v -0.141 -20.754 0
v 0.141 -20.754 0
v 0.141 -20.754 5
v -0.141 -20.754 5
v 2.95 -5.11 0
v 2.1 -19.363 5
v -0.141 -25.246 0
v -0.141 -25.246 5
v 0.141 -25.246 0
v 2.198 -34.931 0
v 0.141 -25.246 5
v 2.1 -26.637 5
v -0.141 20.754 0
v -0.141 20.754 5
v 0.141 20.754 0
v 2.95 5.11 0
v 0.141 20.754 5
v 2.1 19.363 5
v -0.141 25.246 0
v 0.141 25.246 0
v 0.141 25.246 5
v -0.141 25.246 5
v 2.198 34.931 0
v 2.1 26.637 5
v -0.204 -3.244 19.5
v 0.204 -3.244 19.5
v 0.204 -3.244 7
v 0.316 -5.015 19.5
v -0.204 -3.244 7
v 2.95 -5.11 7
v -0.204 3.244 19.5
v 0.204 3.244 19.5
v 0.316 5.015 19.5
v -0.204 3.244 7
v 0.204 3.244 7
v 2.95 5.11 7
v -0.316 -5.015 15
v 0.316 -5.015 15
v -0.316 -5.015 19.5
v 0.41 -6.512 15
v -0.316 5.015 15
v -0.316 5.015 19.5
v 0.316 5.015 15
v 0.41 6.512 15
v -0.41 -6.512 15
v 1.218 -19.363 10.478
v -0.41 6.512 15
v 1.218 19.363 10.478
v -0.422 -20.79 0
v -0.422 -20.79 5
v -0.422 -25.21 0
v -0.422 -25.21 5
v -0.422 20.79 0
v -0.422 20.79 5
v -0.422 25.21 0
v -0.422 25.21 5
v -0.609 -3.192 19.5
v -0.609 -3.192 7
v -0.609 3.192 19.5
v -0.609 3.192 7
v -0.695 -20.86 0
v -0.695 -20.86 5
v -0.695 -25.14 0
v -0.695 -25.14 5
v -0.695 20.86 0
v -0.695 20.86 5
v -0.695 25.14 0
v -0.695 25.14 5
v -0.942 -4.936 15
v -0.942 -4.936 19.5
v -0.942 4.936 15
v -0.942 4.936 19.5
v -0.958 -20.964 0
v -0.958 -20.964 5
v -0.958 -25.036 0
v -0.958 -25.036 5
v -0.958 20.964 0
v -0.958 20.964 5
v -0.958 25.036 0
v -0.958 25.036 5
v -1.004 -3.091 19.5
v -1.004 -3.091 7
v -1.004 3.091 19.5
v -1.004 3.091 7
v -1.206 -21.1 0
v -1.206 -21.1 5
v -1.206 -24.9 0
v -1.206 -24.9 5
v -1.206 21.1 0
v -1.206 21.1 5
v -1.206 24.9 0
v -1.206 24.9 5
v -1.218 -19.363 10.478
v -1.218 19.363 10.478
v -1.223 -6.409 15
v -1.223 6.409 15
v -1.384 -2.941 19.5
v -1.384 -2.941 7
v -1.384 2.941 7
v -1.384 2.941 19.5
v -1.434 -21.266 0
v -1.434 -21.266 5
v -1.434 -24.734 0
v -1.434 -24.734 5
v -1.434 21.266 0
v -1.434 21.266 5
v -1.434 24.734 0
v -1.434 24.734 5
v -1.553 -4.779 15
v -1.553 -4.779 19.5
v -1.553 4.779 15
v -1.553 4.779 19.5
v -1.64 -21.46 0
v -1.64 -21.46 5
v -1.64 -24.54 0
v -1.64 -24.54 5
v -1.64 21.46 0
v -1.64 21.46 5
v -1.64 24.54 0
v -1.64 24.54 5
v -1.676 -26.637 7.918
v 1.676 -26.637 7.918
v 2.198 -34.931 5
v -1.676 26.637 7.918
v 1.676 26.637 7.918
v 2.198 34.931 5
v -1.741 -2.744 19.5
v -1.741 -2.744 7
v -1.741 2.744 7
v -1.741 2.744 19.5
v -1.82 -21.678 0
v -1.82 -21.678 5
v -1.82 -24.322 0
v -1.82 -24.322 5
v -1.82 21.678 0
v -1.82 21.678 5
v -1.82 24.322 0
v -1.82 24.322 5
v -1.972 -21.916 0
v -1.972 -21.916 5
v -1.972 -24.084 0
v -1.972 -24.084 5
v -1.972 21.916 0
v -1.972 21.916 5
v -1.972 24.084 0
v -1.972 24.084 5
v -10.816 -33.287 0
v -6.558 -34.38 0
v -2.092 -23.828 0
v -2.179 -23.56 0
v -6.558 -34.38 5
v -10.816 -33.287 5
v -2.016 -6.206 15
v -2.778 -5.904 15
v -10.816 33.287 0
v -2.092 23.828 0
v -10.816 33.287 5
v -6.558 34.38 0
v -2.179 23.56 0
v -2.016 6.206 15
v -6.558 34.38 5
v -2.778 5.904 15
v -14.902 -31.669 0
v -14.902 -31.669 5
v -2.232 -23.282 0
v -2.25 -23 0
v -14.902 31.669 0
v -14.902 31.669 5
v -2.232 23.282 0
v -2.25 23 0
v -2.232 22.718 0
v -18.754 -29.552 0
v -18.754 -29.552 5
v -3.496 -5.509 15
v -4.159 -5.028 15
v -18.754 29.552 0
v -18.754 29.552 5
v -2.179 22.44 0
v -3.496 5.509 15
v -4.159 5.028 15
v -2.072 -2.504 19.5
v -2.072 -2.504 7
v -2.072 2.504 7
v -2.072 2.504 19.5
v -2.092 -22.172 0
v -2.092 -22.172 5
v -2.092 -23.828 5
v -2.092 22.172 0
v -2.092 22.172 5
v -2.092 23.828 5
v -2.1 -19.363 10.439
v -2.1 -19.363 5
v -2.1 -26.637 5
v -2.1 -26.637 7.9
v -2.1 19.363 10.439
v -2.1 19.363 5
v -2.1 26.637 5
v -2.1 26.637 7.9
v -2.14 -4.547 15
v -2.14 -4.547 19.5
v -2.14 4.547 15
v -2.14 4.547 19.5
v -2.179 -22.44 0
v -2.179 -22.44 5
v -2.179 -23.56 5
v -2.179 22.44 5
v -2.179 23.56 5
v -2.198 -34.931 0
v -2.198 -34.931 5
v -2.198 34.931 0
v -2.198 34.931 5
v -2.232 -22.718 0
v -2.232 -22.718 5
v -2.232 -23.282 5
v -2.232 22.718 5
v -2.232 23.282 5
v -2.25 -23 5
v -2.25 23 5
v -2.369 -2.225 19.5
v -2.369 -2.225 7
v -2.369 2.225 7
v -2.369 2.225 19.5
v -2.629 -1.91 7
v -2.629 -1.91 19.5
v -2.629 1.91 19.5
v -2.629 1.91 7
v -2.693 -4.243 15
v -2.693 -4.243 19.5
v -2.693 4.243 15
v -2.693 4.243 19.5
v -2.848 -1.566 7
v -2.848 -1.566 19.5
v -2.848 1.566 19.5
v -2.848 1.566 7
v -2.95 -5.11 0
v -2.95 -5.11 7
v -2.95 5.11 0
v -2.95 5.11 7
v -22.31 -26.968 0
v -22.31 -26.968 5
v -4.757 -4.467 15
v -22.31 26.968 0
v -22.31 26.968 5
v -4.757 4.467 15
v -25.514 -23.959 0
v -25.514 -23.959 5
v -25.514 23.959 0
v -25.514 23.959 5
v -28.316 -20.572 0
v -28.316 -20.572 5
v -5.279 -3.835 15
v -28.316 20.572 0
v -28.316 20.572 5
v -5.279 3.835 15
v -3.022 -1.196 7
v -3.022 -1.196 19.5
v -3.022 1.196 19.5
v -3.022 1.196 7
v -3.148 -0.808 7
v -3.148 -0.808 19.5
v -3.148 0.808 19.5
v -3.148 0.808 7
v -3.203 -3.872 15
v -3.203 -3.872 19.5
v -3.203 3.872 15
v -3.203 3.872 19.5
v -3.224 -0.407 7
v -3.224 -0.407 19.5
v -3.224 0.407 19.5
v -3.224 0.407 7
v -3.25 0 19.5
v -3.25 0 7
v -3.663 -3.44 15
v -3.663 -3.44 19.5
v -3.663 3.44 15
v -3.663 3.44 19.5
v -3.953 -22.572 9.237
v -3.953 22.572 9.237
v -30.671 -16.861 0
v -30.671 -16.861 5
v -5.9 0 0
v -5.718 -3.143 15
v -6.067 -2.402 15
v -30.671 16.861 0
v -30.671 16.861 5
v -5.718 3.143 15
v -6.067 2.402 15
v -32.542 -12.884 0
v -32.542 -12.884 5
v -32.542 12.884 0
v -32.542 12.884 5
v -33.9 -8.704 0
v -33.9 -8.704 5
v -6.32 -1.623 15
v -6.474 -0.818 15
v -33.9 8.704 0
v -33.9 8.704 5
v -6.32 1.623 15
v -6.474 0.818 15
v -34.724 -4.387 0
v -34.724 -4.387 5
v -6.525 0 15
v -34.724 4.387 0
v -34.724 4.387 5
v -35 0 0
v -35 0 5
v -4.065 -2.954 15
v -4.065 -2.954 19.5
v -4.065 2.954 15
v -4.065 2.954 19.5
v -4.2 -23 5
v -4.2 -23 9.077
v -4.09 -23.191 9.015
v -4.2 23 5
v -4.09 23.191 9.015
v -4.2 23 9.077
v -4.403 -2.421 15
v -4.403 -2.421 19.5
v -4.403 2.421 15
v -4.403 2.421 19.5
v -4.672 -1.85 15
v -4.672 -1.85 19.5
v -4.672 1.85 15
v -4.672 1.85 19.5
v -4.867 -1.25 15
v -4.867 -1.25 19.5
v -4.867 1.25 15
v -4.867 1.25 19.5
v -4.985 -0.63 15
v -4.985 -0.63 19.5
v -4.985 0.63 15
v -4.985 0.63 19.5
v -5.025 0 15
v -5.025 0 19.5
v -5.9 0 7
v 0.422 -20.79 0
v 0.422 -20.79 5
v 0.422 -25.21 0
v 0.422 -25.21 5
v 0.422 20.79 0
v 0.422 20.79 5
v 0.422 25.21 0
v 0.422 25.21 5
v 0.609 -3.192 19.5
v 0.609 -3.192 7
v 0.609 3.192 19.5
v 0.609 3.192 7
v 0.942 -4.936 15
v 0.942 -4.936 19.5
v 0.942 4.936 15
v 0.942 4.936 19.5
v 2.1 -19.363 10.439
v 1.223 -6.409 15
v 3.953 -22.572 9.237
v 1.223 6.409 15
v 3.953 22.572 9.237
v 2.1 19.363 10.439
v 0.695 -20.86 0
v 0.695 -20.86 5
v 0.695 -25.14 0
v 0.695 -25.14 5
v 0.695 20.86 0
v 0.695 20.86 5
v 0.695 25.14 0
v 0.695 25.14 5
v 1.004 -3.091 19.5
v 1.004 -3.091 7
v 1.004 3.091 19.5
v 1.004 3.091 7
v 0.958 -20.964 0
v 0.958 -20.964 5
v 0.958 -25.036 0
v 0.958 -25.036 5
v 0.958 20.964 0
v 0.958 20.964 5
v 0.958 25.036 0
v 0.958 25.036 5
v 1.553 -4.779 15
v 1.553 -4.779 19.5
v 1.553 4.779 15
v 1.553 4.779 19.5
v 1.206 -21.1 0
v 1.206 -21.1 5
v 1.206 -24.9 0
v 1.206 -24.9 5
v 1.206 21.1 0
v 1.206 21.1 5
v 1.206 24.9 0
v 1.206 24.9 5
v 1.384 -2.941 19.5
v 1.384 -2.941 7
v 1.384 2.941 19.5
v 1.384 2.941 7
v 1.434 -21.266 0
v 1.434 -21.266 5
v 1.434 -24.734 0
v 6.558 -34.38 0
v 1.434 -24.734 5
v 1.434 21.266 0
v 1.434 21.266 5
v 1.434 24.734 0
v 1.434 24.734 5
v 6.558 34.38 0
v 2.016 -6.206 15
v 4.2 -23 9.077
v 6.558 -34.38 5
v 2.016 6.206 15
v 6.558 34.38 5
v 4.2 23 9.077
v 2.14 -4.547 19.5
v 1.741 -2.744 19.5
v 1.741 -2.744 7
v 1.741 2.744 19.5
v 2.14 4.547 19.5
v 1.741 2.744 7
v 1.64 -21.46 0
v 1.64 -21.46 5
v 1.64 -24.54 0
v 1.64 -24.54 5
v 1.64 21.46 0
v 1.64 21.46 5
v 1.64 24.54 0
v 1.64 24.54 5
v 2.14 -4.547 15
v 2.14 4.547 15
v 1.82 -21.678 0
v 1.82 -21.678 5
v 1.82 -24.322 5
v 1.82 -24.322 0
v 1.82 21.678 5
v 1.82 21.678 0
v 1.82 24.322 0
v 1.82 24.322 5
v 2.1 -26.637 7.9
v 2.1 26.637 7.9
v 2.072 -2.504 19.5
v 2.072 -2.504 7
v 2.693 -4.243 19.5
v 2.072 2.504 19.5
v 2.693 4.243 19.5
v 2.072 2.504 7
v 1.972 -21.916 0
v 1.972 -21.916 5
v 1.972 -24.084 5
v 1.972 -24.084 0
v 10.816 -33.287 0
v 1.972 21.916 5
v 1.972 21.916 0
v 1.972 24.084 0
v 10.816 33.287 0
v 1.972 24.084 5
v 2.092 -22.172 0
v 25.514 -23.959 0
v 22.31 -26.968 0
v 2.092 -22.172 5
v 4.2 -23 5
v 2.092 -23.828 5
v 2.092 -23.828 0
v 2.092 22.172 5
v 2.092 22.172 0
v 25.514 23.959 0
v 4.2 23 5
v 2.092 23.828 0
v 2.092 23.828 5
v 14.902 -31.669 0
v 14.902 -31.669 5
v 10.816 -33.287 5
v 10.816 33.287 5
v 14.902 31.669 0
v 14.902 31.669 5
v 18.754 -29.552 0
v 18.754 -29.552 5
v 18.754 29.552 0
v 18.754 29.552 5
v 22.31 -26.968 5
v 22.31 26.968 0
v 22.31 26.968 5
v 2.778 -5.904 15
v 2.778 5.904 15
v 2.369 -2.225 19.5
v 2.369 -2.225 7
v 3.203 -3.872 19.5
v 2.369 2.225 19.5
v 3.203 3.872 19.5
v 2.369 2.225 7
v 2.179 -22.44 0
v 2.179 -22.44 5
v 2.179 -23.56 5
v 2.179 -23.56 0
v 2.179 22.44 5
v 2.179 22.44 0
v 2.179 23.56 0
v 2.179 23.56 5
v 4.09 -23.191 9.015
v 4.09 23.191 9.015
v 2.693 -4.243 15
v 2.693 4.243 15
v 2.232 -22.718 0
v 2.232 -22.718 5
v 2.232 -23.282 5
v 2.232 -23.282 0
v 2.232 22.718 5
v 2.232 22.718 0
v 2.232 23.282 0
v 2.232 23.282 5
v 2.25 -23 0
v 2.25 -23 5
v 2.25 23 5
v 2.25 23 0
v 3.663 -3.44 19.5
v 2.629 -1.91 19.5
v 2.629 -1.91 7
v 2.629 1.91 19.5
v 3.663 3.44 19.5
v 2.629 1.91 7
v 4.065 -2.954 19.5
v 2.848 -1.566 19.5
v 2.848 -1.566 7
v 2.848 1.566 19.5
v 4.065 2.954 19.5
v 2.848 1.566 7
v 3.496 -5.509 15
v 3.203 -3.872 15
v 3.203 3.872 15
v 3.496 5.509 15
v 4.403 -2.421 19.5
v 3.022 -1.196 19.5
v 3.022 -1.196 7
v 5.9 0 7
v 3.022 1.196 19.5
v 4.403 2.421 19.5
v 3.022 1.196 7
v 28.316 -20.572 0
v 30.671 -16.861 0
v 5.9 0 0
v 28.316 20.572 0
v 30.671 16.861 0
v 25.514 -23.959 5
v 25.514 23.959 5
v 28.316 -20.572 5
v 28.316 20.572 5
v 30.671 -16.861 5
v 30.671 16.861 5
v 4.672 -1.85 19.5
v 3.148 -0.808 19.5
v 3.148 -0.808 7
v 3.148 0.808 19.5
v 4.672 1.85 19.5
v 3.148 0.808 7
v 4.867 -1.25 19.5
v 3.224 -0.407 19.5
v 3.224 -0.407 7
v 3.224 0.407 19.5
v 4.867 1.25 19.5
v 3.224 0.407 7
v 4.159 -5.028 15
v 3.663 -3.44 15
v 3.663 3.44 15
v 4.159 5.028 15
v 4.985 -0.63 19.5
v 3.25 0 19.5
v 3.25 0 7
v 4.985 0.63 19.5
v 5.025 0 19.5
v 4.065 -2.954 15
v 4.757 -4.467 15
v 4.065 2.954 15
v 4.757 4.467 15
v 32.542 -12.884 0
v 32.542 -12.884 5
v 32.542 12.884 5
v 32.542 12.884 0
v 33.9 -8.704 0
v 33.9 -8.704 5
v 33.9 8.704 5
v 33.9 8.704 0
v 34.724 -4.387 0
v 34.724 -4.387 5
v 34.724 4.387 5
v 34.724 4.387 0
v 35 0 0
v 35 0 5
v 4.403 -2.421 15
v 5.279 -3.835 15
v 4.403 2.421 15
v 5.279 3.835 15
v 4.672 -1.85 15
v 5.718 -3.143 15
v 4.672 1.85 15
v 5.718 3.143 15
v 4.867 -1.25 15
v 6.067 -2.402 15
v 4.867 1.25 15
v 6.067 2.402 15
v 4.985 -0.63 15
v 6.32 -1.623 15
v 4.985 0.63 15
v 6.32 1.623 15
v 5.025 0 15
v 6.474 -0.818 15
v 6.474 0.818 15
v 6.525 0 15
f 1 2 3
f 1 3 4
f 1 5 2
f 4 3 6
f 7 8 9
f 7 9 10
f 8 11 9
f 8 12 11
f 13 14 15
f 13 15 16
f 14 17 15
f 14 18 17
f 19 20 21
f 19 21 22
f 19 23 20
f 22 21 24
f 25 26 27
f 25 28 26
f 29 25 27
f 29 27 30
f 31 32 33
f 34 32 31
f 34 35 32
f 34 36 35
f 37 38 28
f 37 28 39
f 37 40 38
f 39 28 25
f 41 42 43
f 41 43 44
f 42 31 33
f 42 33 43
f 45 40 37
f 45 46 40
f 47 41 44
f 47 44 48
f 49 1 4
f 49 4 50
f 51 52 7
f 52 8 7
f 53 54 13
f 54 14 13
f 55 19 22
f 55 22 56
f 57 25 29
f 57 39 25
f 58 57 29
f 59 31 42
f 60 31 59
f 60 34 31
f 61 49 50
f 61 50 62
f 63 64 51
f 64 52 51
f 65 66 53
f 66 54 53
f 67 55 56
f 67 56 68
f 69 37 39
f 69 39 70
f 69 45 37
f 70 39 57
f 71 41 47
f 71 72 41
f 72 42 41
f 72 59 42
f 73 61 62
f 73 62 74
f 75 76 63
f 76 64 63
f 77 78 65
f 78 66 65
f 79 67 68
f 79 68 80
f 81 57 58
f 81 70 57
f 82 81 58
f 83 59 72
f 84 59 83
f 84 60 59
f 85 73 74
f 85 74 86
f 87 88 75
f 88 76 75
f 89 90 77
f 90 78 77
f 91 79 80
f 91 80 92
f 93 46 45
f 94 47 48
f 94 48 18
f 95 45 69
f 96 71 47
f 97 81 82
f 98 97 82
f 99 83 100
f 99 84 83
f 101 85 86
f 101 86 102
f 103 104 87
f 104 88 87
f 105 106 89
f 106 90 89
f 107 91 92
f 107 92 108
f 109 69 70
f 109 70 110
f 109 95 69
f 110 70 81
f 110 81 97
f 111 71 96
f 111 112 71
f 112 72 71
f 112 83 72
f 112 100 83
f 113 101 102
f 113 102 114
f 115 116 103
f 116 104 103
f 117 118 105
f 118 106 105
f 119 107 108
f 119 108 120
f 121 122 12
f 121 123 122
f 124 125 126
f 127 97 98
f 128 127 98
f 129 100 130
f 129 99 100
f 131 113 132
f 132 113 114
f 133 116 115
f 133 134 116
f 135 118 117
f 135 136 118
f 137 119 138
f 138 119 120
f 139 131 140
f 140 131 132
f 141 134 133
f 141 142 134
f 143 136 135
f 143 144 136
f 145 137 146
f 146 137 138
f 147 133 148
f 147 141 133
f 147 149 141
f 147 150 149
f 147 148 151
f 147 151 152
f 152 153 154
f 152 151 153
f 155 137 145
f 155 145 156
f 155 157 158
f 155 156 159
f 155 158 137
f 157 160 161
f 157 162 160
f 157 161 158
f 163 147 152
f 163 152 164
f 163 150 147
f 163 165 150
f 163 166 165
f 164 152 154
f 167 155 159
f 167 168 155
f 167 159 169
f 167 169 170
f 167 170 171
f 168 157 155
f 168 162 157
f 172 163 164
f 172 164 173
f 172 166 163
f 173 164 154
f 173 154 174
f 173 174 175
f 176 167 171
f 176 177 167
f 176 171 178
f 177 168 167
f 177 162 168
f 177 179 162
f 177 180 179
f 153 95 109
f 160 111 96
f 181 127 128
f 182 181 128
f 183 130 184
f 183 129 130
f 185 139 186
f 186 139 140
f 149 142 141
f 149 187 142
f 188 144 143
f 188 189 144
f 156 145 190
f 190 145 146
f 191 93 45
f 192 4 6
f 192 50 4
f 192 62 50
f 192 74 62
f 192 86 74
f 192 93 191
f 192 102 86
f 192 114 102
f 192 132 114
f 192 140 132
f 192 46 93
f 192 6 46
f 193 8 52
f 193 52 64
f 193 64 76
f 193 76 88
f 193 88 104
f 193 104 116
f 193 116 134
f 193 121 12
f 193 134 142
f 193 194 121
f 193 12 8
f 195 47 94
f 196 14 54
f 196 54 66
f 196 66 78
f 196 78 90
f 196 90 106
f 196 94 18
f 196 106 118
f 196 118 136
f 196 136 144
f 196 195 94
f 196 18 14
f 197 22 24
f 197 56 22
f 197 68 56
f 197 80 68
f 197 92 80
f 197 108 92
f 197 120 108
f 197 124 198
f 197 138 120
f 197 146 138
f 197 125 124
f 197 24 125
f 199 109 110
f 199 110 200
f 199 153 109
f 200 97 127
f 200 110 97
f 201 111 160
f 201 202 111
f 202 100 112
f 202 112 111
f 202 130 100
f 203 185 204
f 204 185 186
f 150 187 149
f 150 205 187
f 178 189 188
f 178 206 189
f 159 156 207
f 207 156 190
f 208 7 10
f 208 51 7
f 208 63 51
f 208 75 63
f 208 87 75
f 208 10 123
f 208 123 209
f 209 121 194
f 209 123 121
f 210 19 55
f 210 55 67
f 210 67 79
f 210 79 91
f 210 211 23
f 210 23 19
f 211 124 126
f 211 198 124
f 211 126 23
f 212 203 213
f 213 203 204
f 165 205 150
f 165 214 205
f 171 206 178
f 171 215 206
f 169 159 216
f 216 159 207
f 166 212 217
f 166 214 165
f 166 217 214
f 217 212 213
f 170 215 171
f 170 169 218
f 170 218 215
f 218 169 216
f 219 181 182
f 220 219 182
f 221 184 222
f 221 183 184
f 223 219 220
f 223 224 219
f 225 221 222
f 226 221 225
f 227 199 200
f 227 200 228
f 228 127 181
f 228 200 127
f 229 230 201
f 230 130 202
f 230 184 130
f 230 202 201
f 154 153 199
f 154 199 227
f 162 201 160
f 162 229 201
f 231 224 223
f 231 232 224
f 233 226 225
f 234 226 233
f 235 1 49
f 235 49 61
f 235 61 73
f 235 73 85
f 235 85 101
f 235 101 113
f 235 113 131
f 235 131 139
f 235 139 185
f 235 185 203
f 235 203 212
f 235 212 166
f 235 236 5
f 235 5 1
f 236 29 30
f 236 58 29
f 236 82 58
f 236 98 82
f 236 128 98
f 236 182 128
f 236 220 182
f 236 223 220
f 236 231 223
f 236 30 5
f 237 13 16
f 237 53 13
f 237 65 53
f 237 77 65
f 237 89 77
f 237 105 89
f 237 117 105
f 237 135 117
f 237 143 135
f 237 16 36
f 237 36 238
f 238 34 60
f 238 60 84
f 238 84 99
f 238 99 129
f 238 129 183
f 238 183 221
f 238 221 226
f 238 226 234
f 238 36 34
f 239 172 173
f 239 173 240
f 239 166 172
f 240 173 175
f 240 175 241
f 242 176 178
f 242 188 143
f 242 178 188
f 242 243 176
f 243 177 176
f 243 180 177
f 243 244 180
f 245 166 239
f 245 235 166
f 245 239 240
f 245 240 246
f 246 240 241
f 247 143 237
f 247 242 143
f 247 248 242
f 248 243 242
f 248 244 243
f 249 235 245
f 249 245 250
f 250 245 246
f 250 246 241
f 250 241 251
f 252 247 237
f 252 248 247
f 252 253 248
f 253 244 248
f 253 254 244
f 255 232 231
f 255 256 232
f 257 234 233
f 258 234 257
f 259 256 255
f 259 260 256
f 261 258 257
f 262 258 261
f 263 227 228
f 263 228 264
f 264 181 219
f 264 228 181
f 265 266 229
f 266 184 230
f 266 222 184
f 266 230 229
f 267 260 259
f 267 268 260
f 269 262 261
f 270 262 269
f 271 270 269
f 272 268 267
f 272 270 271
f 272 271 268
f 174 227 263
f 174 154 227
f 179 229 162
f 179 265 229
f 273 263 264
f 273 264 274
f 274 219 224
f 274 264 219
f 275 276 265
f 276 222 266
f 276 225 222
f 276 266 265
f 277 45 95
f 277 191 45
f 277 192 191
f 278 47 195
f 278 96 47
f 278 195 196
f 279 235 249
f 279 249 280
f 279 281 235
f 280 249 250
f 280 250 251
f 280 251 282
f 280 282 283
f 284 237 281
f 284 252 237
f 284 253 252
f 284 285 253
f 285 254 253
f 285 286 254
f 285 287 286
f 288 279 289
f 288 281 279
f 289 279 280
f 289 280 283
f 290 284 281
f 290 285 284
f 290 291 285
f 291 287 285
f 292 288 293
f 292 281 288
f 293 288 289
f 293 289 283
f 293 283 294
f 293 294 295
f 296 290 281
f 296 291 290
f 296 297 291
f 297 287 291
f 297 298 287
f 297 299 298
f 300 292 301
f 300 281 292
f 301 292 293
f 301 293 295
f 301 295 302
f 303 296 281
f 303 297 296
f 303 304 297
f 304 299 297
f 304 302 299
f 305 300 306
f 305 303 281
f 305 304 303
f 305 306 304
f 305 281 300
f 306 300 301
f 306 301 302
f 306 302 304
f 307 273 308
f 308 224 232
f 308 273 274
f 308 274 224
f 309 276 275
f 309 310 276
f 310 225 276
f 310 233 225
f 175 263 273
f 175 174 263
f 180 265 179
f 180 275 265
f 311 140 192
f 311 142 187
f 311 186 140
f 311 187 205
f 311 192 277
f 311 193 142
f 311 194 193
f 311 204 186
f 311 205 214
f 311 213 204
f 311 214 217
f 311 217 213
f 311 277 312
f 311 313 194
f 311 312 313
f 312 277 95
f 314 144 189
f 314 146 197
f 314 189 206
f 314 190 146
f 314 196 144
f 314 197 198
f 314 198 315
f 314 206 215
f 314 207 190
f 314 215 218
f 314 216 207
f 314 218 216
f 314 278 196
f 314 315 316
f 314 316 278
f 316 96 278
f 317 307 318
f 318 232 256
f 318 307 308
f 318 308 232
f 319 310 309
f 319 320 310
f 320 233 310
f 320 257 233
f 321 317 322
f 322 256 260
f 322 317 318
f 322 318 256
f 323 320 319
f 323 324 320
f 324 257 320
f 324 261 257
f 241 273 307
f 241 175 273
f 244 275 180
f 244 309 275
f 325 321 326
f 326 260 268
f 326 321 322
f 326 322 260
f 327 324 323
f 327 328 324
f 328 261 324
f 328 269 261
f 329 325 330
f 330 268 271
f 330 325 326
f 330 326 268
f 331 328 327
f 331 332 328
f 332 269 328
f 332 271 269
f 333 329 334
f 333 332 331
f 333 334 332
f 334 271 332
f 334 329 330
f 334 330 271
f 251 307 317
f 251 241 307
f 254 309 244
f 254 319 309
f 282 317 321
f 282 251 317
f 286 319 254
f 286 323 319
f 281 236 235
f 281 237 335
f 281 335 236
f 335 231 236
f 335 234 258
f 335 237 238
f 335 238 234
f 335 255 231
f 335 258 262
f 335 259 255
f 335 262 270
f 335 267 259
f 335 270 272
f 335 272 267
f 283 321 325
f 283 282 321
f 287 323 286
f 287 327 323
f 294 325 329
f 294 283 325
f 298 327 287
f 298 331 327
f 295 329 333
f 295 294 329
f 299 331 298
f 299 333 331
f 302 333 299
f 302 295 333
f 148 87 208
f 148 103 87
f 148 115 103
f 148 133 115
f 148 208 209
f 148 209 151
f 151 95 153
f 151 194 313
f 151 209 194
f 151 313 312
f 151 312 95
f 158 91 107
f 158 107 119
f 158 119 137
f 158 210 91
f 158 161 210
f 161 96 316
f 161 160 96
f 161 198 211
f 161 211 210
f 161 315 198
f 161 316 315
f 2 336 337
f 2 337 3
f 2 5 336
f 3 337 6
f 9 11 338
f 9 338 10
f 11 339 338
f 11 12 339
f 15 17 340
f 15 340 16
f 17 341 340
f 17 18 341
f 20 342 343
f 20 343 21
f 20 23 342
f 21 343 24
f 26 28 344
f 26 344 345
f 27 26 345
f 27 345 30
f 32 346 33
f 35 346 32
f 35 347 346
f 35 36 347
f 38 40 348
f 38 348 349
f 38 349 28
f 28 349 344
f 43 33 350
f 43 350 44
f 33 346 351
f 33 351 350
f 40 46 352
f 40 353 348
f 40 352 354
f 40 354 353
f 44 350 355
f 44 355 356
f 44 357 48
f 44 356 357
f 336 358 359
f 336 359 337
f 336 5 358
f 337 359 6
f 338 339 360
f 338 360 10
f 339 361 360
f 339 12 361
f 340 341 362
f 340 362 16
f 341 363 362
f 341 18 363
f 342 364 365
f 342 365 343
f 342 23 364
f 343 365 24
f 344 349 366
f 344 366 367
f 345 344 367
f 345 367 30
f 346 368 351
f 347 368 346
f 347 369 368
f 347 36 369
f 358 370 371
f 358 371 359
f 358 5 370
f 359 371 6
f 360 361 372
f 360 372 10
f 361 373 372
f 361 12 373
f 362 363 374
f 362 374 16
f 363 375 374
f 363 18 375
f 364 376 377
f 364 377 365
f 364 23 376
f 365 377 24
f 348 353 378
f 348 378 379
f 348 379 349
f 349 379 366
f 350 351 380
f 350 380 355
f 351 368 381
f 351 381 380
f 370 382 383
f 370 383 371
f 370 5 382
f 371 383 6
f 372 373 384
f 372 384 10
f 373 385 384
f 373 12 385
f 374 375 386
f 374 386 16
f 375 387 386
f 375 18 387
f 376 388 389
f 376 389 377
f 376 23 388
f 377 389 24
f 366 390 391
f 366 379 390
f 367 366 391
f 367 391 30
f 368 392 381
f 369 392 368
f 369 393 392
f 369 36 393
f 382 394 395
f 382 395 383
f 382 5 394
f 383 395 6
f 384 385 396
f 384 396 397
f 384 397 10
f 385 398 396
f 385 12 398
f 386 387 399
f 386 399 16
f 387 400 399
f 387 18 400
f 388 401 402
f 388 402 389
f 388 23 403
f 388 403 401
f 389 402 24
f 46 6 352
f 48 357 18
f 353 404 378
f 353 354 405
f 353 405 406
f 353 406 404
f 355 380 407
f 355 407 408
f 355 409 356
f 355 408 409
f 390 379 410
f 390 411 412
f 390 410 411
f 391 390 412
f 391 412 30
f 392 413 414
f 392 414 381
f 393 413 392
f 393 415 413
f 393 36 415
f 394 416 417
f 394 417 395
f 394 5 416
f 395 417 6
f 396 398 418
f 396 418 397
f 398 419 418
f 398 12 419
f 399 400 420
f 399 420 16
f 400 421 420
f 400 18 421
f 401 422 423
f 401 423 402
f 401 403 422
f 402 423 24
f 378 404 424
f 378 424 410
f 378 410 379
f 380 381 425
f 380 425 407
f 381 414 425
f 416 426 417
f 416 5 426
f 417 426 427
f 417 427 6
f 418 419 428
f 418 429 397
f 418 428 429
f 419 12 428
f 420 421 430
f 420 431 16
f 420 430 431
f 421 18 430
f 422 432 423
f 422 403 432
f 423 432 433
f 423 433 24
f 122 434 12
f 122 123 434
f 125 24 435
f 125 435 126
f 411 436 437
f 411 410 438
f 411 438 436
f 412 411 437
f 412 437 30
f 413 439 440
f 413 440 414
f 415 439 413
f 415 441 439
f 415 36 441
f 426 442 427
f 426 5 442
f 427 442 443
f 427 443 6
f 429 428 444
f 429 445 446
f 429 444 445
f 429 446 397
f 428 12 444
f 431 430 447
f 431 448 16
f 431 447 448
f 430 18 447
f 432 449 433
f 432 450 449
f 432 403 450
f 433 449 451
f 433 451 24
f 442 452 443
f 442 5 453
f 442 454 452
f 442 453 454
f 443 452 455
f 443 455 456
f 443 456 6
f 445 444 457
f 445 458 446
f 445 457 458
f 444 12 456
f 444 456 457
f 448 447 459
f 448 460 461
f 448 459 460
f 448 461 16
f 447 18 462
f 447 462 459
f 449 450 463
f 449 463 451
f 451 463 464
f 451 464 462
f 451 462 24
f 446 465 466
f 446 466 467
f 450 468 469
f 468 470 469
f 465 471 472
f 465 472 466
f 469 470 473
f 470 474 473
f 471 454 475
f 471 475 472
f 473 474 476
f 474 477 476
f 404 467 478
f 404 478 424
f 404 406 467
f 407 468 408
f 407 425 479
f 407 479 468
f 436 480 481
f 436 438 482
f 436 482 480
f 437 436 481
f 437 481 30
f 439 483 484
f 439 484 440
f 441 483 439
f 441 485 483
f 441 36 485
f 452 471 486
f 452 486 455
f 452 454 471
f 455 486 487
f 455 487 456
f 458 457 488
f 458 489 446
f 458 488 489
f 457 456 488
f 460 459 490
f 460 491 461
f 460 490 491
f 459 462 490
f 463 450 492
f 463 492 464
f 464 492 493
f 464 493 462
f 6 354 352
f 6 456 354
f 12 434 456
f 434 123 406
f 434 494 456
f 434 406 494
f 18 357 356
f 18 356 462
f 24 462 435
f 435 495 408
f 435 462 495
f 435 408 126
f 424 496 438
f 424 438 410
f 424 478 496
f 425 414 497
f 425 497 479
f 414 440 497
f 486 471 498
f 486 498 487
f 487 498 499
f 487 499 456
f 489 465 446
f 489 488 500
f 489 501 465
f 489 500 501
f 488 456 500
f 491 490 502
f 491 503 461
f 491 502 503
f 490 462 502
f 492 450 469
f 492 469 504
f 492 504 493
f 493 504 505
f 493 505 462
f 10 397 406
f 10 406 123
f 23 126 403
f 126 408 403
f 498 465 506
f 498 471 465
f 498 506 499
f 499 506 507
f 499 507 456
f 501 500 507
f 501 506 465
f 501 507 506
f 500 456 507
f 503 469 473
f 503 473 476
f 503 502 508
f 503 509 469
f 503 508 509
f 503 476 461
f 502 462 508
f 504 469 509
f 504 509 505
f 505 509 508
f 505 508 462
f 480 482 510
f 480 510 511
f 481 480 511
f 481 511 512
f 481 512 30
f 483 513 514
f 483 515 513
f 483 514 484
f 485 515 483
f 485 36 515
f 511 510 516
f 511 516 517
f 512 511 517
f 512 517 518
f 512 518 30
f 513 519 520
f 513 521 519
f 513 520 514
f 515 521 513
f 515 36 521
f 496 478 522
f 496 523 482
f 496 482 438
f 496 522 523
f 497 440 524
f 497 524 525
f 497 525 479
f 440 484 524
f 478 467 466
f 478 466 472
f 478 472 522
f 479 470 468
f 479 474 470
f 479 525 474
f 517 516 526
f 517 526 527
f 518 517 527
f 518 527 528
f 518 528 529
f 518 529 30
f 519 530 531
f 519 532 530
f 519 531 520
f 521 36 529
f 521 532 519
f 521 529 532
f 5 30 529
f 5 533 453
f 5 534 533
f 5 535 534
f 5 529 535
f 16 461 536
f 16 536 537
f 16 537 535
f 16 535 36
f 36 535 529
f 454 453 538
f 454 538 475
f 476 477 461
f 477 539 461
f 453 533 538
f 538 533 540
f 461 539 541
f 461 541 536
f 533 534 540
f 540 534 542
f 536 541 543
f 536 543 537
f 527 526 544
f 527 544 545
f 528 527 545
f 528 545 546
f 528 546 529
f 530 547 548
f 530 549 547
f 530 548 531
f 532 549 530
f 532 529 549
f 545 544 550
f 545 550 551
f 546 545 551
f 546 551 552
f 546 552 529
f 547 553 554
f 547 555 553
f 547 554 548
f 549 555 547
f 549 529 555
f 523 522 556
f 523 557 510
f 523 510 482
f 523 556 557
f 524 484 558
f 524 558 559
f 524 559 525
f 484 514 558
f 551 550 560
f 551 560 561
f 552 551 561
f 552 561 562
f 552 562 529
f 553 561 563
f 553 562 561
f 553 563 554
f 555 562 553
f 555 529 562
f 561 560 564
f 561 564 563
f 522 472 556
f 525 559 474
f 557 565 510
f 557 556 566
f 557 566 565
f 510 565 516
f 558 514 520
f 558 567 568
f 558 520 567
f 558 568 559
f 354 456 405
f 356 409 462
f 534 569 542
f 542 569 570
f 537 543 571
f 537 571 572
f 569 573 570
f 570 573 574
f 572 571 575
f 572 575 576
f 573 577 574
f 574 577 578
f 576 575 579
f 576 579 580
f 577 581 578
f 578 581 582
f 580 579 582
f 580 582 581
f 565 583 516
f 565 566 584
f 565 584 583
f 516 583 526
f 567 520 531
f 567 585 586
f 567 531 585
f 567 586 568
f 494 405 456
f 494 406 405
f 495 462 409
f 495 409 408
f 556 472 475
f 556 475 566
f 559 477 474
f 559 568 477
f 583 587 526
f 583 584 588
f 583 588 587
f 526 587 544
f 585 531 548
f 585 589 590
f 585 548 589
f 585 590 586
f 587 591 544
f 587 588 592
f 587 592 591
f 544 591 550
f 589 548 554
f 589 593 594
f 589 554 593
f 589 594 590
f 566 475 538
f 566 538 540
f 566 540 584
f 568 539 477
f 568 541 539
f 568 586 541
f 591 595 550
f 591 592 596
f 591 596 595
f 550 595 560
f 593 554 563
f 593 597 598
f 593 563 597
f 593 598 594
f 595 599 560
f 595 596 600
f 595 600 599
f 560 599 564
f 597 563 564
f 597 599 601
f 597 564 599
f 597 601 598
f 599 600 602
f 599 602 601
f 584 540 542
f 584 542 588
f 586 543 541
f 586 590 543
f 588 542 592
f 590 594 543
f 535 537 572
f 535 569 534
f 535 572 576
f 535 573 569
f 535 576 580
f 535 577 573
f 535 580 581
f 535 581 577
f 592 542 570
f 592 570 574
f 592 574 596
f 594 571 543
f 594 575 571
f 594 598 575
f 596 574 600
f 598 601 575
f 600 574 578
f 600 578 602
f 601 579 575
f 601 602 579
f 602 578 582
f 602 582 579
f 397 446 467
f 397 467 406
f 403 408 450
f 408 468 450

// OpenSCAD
include <../Parameters.scad>

module 888_2007(draft = true){

    difference(){
        union(){
            cylinder(d = 70, h = 5, $fn = draft?50:100);
            translate([0,0,5])
                cylinder(d1 = 70, d2 = bearing_efsm_10_d + 3, h = 10, $fn = draft?50:100);

            translate([0,0,15])
                cylinder(d = bearing_efsm_10_d, h = 9/2, $fn = draft?50:100);

        }
            
        // diry pro srouby do podlozky
        translate([0, -46/2, 0])
        {
            cylinder(d = M4_screw_diameter, h = 10, $fn=50);
            translate([0,0,5])
                cylinder(d = M4_nut_diameter, h = 3 * M4_nut_height, $fn = 6);
        }
        translate([0, 46/2, 0]){
            cylinder(d = M4_screw_diameter, h = 10, $fn = 50);
            translate([0,0,5])
                cylinder(d = M4_nut_diameter, h = 3 * M4_nut_height, $fn = 6);
        }

        cylinder(d = M6_screw_diameter, h = 20, $fn = draft?50:100);

        cylinder(d = M6_nut_diameter, h = 7, $fn = 6);

    }
}

888_2007();
